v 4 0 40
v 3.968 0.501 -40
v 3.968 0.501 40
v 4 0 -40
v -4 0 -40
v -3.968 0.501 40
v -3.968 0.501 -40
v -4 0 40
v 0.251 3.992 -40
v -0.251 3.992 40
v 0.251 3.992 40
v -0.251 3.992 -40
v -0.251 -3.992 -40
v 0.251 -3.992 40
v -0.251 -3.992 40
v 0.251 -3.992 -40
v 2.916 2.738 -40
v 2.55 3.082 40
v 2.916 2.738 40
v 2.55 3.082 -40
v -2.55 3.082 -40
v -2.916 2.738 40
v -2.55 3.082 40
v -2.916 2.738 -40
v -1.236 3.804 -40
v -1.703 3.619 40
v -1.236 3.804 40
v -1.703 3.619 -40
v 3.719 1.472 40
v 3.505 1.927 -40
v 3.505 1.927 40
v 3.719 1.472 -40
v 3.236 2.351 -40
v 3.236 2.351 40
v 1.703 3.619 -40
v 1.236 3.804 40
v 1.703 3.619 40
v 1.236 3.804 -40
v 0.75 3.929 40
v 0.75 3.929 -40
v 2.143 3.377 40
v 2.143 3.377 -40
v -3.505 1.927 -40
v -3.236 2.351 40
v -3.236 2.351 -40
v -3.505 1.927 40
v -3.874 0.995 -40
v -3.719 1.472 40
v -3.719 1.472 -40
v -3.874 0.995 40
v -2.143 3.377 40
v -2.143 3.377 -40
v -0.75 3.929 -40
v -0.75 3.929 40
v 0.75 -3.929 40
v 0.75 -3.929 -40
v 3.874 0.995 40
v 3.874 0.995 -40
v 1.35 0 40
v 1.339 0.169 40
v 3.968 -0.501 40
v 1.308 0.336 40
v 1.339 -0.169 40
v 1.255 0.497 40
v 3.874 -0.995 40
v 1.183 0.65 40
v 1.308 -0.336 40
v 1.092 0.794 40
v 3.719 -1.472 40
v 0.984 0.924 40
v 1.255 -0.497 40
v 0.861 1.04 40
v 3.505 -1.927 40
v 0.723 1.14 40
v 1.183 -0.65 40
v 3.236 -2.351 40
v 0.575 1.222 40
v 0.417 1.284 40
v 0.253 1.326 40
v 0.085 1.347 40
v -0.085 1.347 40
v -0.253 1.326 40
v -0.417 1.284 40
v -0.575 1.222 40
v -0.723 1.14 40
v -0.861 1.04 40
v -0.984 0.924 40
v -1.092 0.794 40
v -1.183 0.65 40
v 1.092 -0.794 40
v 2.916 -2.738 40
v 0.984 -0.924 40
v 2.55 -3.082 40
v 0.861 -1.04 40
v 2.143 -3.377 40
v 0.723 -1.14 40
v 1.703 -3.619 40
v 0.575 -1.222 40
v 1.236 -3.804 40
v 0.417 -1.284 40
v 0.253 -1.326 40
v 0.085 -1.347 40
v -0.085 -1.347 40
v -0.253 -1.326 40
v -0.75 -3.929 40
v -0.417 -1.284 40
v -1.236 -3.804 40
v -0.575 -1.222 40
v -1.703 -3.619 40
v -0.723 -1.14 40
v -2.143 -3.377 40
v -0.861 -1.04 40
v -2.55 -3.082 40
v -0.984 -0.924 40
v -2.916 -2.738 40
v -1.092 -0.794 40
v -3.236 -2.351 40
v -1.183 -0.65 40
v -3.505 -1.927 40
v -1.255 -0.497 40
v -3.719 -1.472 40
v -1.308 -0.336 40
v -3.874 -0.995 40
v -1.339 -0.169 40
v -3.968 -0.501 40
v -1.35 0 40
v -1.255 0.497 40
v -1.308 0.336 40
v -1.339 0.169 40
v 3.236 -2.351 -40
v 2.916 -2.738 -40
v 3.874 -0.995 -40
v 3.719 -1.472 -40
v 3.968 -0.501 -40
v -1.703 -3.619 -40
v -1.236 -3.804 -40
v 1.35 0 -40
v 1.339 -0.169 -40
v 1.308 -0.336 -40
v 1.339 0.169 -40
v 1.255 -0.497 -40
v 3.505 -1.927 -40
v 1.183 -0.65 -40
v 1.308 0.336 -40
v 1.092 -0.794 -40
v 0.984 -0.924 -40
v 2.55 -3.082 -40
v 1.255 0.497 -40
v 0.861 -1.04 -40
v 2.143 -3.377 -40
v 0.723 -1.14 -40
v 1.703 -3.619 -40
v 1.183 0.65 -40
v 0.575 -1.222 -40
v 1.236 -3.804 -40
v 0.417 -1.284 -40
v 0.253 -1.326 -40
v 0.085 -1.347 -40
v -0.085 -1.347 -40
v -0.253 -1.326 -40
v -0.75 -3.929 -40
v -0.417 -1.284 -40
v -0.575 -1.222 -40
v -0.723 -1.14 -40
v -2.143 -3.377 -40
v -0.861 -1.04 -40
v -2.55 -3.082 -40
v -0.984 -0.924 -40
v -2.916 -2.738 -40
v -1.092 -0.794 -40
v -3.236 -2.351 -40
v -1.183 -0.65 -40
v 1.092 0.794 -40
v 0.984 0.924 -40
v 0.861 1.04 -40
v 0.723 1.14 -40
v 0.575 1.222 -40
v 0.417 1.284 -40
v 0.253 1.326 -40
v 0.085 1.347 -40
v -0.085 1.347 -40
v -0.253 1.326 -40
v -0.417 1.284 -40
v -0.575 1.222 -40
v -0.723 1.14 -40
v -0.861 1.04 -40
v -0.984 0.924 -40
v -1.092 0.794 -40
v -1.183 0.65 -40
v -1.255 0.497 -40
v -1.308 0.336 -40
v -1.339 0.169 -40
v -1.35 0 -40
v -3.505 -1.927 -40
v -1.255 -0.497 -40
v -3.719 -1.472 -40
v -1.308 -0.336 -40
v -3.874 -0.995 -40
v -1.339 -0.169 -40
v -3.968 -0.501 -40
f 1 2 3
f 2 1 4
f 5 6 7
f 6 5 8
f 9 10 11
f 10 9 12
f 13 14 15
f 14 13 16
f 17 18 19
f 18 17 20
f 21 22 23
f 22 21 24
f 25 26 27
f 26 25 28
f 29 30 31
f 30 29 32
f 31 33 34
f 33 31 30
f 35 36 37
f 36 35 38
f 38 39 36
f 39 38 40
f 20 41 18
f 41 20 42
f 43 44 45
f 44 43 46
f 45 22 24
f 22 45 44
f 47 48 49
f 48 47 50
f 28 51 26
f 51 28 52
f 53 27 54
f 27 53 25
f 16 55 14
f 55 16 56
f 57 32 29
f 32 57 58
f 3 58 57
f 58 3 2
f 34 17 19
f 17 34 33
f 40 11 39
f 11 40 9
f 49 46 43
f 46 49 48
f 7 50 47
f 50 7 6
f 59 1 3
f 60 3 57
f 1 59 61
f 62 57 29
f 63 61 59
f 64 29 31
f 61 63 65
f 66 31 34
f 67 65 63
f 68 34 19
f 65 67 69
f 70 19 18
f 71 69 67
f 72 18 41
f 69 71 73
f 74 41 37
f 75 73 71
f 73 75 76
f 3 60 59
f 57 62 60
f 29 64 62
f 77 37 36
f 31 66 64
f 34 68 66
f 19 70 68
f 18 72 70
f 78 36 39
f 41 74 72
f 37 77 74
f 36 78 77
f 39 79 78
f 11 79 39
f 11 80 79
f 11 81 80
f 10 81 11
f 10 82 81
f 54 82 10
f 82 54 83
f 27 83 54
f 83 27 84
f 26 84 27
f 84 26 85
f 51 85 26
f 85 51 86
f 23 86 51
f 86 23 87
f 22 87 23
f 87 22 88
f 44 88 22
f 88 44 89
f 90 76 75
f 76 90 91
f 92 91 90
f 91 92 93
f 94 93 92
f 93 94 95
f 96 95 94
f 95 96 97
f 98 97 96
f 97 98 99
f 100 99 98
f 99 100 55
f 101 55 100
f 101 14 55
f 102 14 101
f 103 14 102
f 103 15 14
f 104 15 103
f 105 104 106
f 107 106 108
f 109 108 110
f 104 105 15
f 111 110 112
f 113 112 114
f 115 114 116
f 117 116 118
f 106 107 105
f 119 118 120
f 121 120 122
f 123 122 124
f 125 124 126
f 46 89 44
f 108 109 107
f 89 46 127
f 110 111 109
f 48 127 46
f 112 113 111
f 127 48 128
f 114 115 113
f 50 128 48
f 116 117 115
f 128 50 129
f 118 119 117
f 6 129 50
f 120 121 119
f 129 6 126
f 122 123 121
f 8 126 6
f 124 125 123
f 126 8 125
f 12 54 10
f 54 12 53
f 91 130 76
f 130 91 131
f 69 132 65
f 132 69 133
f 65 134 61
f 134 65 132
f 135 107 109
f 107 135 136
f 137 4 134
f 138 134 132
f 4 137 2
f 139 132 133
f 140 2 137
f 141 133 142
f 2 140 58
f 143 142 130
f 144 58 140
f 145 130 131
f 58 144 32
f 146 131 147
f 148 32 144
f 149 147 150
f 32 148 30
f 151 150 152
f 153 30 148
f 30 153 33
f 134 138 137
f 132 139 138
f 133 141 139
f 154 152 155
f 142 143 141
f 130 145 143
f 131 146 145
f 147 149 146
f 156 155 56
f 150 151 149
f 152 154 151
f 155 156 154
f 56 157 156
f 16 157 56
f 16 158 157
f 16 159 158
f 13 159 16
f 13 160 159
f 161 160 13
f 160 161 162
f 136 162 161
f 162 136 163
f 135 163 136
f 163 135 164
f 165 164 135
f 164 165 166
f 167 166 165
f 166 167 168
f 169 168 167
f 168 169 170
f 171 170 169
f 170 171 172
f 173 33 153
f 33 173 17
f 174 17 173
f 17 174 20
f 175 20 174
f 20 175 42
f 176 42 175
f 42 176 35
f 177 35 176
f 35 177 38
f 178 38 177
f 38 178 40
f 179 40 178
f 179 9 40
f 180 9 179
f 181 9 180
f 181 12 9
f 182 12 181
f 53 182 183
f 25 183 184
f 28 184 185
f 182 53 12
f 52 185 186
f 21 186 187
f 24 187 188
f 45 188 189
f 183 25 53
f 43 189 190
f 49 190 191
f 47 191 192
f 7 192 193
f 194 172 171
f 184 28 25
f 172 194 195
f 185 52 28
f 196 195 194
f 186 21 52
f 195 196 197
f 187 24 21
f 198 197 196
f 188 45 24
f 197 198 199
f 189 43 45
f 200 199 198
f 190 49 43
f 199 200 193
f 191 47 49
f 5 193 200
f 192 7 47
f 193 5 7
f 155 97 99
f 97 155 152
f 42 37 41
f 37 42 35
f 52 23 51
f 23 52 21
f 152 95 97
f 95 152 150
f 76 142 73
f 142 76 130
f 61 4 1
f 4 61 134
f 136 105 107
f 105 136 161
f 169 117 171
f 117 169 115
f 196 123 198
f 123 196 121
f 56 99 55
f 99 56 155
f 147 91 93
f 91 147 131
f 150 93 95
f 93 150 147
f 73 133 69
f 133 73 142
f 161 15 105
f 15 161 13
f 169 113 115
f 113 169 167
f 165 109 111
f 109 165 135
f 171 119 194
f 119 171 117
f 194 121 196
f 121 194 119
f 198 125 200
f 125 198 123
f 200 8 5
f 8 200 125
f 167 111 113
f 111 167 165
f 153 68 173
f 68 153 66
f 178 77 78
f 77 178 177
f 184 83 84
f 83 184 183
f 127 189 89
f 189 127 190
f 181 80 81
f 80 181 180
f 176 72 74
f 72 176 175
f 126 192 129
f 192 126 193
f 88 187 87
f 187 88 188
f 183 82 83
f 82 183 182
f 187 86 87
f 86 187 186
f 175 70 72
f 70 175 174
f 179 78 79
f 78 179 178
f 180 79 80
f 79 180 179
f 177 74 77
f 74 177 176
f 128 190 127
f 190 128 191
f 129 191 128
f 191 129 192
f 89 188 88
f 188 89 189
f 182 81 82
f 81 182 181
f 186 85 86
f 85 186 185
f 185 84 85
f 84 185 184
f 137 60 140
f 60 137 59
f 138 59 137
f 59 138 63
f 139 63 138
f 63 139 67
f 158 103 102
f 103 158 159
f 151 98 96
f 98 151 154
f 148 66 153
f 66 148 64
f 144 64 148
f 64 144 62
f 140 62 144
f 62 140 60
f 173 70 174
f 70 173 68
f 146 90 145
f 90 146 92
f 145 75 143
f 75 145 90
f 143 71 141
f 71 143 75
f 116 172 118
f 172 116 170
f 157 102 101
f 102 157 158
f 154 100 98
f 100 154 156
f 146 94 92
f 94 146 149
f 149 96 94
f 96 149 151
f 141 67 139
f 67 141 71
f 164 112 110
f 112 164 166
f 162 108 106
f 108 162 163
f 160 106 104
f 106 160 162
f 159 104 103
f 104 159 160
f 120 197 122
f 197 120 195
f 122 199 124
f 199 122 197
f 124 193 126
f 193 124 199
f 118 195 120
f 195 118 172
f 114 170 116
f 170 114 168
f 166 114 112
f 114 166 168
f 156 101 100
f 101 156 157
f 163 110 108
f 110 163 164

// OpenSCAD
$fn = 50;


difference() {
	union() {
		translate(v = [0, 0, -40.0000000000]) {
			cylinder(h = 80, r = 4.0000000000);
		}
	}
	union() {
		translate(v = [0, 0, -100.0000000000]) {
			cylinder(h = 200, r = 1.3500000000);
		}
	}
}
